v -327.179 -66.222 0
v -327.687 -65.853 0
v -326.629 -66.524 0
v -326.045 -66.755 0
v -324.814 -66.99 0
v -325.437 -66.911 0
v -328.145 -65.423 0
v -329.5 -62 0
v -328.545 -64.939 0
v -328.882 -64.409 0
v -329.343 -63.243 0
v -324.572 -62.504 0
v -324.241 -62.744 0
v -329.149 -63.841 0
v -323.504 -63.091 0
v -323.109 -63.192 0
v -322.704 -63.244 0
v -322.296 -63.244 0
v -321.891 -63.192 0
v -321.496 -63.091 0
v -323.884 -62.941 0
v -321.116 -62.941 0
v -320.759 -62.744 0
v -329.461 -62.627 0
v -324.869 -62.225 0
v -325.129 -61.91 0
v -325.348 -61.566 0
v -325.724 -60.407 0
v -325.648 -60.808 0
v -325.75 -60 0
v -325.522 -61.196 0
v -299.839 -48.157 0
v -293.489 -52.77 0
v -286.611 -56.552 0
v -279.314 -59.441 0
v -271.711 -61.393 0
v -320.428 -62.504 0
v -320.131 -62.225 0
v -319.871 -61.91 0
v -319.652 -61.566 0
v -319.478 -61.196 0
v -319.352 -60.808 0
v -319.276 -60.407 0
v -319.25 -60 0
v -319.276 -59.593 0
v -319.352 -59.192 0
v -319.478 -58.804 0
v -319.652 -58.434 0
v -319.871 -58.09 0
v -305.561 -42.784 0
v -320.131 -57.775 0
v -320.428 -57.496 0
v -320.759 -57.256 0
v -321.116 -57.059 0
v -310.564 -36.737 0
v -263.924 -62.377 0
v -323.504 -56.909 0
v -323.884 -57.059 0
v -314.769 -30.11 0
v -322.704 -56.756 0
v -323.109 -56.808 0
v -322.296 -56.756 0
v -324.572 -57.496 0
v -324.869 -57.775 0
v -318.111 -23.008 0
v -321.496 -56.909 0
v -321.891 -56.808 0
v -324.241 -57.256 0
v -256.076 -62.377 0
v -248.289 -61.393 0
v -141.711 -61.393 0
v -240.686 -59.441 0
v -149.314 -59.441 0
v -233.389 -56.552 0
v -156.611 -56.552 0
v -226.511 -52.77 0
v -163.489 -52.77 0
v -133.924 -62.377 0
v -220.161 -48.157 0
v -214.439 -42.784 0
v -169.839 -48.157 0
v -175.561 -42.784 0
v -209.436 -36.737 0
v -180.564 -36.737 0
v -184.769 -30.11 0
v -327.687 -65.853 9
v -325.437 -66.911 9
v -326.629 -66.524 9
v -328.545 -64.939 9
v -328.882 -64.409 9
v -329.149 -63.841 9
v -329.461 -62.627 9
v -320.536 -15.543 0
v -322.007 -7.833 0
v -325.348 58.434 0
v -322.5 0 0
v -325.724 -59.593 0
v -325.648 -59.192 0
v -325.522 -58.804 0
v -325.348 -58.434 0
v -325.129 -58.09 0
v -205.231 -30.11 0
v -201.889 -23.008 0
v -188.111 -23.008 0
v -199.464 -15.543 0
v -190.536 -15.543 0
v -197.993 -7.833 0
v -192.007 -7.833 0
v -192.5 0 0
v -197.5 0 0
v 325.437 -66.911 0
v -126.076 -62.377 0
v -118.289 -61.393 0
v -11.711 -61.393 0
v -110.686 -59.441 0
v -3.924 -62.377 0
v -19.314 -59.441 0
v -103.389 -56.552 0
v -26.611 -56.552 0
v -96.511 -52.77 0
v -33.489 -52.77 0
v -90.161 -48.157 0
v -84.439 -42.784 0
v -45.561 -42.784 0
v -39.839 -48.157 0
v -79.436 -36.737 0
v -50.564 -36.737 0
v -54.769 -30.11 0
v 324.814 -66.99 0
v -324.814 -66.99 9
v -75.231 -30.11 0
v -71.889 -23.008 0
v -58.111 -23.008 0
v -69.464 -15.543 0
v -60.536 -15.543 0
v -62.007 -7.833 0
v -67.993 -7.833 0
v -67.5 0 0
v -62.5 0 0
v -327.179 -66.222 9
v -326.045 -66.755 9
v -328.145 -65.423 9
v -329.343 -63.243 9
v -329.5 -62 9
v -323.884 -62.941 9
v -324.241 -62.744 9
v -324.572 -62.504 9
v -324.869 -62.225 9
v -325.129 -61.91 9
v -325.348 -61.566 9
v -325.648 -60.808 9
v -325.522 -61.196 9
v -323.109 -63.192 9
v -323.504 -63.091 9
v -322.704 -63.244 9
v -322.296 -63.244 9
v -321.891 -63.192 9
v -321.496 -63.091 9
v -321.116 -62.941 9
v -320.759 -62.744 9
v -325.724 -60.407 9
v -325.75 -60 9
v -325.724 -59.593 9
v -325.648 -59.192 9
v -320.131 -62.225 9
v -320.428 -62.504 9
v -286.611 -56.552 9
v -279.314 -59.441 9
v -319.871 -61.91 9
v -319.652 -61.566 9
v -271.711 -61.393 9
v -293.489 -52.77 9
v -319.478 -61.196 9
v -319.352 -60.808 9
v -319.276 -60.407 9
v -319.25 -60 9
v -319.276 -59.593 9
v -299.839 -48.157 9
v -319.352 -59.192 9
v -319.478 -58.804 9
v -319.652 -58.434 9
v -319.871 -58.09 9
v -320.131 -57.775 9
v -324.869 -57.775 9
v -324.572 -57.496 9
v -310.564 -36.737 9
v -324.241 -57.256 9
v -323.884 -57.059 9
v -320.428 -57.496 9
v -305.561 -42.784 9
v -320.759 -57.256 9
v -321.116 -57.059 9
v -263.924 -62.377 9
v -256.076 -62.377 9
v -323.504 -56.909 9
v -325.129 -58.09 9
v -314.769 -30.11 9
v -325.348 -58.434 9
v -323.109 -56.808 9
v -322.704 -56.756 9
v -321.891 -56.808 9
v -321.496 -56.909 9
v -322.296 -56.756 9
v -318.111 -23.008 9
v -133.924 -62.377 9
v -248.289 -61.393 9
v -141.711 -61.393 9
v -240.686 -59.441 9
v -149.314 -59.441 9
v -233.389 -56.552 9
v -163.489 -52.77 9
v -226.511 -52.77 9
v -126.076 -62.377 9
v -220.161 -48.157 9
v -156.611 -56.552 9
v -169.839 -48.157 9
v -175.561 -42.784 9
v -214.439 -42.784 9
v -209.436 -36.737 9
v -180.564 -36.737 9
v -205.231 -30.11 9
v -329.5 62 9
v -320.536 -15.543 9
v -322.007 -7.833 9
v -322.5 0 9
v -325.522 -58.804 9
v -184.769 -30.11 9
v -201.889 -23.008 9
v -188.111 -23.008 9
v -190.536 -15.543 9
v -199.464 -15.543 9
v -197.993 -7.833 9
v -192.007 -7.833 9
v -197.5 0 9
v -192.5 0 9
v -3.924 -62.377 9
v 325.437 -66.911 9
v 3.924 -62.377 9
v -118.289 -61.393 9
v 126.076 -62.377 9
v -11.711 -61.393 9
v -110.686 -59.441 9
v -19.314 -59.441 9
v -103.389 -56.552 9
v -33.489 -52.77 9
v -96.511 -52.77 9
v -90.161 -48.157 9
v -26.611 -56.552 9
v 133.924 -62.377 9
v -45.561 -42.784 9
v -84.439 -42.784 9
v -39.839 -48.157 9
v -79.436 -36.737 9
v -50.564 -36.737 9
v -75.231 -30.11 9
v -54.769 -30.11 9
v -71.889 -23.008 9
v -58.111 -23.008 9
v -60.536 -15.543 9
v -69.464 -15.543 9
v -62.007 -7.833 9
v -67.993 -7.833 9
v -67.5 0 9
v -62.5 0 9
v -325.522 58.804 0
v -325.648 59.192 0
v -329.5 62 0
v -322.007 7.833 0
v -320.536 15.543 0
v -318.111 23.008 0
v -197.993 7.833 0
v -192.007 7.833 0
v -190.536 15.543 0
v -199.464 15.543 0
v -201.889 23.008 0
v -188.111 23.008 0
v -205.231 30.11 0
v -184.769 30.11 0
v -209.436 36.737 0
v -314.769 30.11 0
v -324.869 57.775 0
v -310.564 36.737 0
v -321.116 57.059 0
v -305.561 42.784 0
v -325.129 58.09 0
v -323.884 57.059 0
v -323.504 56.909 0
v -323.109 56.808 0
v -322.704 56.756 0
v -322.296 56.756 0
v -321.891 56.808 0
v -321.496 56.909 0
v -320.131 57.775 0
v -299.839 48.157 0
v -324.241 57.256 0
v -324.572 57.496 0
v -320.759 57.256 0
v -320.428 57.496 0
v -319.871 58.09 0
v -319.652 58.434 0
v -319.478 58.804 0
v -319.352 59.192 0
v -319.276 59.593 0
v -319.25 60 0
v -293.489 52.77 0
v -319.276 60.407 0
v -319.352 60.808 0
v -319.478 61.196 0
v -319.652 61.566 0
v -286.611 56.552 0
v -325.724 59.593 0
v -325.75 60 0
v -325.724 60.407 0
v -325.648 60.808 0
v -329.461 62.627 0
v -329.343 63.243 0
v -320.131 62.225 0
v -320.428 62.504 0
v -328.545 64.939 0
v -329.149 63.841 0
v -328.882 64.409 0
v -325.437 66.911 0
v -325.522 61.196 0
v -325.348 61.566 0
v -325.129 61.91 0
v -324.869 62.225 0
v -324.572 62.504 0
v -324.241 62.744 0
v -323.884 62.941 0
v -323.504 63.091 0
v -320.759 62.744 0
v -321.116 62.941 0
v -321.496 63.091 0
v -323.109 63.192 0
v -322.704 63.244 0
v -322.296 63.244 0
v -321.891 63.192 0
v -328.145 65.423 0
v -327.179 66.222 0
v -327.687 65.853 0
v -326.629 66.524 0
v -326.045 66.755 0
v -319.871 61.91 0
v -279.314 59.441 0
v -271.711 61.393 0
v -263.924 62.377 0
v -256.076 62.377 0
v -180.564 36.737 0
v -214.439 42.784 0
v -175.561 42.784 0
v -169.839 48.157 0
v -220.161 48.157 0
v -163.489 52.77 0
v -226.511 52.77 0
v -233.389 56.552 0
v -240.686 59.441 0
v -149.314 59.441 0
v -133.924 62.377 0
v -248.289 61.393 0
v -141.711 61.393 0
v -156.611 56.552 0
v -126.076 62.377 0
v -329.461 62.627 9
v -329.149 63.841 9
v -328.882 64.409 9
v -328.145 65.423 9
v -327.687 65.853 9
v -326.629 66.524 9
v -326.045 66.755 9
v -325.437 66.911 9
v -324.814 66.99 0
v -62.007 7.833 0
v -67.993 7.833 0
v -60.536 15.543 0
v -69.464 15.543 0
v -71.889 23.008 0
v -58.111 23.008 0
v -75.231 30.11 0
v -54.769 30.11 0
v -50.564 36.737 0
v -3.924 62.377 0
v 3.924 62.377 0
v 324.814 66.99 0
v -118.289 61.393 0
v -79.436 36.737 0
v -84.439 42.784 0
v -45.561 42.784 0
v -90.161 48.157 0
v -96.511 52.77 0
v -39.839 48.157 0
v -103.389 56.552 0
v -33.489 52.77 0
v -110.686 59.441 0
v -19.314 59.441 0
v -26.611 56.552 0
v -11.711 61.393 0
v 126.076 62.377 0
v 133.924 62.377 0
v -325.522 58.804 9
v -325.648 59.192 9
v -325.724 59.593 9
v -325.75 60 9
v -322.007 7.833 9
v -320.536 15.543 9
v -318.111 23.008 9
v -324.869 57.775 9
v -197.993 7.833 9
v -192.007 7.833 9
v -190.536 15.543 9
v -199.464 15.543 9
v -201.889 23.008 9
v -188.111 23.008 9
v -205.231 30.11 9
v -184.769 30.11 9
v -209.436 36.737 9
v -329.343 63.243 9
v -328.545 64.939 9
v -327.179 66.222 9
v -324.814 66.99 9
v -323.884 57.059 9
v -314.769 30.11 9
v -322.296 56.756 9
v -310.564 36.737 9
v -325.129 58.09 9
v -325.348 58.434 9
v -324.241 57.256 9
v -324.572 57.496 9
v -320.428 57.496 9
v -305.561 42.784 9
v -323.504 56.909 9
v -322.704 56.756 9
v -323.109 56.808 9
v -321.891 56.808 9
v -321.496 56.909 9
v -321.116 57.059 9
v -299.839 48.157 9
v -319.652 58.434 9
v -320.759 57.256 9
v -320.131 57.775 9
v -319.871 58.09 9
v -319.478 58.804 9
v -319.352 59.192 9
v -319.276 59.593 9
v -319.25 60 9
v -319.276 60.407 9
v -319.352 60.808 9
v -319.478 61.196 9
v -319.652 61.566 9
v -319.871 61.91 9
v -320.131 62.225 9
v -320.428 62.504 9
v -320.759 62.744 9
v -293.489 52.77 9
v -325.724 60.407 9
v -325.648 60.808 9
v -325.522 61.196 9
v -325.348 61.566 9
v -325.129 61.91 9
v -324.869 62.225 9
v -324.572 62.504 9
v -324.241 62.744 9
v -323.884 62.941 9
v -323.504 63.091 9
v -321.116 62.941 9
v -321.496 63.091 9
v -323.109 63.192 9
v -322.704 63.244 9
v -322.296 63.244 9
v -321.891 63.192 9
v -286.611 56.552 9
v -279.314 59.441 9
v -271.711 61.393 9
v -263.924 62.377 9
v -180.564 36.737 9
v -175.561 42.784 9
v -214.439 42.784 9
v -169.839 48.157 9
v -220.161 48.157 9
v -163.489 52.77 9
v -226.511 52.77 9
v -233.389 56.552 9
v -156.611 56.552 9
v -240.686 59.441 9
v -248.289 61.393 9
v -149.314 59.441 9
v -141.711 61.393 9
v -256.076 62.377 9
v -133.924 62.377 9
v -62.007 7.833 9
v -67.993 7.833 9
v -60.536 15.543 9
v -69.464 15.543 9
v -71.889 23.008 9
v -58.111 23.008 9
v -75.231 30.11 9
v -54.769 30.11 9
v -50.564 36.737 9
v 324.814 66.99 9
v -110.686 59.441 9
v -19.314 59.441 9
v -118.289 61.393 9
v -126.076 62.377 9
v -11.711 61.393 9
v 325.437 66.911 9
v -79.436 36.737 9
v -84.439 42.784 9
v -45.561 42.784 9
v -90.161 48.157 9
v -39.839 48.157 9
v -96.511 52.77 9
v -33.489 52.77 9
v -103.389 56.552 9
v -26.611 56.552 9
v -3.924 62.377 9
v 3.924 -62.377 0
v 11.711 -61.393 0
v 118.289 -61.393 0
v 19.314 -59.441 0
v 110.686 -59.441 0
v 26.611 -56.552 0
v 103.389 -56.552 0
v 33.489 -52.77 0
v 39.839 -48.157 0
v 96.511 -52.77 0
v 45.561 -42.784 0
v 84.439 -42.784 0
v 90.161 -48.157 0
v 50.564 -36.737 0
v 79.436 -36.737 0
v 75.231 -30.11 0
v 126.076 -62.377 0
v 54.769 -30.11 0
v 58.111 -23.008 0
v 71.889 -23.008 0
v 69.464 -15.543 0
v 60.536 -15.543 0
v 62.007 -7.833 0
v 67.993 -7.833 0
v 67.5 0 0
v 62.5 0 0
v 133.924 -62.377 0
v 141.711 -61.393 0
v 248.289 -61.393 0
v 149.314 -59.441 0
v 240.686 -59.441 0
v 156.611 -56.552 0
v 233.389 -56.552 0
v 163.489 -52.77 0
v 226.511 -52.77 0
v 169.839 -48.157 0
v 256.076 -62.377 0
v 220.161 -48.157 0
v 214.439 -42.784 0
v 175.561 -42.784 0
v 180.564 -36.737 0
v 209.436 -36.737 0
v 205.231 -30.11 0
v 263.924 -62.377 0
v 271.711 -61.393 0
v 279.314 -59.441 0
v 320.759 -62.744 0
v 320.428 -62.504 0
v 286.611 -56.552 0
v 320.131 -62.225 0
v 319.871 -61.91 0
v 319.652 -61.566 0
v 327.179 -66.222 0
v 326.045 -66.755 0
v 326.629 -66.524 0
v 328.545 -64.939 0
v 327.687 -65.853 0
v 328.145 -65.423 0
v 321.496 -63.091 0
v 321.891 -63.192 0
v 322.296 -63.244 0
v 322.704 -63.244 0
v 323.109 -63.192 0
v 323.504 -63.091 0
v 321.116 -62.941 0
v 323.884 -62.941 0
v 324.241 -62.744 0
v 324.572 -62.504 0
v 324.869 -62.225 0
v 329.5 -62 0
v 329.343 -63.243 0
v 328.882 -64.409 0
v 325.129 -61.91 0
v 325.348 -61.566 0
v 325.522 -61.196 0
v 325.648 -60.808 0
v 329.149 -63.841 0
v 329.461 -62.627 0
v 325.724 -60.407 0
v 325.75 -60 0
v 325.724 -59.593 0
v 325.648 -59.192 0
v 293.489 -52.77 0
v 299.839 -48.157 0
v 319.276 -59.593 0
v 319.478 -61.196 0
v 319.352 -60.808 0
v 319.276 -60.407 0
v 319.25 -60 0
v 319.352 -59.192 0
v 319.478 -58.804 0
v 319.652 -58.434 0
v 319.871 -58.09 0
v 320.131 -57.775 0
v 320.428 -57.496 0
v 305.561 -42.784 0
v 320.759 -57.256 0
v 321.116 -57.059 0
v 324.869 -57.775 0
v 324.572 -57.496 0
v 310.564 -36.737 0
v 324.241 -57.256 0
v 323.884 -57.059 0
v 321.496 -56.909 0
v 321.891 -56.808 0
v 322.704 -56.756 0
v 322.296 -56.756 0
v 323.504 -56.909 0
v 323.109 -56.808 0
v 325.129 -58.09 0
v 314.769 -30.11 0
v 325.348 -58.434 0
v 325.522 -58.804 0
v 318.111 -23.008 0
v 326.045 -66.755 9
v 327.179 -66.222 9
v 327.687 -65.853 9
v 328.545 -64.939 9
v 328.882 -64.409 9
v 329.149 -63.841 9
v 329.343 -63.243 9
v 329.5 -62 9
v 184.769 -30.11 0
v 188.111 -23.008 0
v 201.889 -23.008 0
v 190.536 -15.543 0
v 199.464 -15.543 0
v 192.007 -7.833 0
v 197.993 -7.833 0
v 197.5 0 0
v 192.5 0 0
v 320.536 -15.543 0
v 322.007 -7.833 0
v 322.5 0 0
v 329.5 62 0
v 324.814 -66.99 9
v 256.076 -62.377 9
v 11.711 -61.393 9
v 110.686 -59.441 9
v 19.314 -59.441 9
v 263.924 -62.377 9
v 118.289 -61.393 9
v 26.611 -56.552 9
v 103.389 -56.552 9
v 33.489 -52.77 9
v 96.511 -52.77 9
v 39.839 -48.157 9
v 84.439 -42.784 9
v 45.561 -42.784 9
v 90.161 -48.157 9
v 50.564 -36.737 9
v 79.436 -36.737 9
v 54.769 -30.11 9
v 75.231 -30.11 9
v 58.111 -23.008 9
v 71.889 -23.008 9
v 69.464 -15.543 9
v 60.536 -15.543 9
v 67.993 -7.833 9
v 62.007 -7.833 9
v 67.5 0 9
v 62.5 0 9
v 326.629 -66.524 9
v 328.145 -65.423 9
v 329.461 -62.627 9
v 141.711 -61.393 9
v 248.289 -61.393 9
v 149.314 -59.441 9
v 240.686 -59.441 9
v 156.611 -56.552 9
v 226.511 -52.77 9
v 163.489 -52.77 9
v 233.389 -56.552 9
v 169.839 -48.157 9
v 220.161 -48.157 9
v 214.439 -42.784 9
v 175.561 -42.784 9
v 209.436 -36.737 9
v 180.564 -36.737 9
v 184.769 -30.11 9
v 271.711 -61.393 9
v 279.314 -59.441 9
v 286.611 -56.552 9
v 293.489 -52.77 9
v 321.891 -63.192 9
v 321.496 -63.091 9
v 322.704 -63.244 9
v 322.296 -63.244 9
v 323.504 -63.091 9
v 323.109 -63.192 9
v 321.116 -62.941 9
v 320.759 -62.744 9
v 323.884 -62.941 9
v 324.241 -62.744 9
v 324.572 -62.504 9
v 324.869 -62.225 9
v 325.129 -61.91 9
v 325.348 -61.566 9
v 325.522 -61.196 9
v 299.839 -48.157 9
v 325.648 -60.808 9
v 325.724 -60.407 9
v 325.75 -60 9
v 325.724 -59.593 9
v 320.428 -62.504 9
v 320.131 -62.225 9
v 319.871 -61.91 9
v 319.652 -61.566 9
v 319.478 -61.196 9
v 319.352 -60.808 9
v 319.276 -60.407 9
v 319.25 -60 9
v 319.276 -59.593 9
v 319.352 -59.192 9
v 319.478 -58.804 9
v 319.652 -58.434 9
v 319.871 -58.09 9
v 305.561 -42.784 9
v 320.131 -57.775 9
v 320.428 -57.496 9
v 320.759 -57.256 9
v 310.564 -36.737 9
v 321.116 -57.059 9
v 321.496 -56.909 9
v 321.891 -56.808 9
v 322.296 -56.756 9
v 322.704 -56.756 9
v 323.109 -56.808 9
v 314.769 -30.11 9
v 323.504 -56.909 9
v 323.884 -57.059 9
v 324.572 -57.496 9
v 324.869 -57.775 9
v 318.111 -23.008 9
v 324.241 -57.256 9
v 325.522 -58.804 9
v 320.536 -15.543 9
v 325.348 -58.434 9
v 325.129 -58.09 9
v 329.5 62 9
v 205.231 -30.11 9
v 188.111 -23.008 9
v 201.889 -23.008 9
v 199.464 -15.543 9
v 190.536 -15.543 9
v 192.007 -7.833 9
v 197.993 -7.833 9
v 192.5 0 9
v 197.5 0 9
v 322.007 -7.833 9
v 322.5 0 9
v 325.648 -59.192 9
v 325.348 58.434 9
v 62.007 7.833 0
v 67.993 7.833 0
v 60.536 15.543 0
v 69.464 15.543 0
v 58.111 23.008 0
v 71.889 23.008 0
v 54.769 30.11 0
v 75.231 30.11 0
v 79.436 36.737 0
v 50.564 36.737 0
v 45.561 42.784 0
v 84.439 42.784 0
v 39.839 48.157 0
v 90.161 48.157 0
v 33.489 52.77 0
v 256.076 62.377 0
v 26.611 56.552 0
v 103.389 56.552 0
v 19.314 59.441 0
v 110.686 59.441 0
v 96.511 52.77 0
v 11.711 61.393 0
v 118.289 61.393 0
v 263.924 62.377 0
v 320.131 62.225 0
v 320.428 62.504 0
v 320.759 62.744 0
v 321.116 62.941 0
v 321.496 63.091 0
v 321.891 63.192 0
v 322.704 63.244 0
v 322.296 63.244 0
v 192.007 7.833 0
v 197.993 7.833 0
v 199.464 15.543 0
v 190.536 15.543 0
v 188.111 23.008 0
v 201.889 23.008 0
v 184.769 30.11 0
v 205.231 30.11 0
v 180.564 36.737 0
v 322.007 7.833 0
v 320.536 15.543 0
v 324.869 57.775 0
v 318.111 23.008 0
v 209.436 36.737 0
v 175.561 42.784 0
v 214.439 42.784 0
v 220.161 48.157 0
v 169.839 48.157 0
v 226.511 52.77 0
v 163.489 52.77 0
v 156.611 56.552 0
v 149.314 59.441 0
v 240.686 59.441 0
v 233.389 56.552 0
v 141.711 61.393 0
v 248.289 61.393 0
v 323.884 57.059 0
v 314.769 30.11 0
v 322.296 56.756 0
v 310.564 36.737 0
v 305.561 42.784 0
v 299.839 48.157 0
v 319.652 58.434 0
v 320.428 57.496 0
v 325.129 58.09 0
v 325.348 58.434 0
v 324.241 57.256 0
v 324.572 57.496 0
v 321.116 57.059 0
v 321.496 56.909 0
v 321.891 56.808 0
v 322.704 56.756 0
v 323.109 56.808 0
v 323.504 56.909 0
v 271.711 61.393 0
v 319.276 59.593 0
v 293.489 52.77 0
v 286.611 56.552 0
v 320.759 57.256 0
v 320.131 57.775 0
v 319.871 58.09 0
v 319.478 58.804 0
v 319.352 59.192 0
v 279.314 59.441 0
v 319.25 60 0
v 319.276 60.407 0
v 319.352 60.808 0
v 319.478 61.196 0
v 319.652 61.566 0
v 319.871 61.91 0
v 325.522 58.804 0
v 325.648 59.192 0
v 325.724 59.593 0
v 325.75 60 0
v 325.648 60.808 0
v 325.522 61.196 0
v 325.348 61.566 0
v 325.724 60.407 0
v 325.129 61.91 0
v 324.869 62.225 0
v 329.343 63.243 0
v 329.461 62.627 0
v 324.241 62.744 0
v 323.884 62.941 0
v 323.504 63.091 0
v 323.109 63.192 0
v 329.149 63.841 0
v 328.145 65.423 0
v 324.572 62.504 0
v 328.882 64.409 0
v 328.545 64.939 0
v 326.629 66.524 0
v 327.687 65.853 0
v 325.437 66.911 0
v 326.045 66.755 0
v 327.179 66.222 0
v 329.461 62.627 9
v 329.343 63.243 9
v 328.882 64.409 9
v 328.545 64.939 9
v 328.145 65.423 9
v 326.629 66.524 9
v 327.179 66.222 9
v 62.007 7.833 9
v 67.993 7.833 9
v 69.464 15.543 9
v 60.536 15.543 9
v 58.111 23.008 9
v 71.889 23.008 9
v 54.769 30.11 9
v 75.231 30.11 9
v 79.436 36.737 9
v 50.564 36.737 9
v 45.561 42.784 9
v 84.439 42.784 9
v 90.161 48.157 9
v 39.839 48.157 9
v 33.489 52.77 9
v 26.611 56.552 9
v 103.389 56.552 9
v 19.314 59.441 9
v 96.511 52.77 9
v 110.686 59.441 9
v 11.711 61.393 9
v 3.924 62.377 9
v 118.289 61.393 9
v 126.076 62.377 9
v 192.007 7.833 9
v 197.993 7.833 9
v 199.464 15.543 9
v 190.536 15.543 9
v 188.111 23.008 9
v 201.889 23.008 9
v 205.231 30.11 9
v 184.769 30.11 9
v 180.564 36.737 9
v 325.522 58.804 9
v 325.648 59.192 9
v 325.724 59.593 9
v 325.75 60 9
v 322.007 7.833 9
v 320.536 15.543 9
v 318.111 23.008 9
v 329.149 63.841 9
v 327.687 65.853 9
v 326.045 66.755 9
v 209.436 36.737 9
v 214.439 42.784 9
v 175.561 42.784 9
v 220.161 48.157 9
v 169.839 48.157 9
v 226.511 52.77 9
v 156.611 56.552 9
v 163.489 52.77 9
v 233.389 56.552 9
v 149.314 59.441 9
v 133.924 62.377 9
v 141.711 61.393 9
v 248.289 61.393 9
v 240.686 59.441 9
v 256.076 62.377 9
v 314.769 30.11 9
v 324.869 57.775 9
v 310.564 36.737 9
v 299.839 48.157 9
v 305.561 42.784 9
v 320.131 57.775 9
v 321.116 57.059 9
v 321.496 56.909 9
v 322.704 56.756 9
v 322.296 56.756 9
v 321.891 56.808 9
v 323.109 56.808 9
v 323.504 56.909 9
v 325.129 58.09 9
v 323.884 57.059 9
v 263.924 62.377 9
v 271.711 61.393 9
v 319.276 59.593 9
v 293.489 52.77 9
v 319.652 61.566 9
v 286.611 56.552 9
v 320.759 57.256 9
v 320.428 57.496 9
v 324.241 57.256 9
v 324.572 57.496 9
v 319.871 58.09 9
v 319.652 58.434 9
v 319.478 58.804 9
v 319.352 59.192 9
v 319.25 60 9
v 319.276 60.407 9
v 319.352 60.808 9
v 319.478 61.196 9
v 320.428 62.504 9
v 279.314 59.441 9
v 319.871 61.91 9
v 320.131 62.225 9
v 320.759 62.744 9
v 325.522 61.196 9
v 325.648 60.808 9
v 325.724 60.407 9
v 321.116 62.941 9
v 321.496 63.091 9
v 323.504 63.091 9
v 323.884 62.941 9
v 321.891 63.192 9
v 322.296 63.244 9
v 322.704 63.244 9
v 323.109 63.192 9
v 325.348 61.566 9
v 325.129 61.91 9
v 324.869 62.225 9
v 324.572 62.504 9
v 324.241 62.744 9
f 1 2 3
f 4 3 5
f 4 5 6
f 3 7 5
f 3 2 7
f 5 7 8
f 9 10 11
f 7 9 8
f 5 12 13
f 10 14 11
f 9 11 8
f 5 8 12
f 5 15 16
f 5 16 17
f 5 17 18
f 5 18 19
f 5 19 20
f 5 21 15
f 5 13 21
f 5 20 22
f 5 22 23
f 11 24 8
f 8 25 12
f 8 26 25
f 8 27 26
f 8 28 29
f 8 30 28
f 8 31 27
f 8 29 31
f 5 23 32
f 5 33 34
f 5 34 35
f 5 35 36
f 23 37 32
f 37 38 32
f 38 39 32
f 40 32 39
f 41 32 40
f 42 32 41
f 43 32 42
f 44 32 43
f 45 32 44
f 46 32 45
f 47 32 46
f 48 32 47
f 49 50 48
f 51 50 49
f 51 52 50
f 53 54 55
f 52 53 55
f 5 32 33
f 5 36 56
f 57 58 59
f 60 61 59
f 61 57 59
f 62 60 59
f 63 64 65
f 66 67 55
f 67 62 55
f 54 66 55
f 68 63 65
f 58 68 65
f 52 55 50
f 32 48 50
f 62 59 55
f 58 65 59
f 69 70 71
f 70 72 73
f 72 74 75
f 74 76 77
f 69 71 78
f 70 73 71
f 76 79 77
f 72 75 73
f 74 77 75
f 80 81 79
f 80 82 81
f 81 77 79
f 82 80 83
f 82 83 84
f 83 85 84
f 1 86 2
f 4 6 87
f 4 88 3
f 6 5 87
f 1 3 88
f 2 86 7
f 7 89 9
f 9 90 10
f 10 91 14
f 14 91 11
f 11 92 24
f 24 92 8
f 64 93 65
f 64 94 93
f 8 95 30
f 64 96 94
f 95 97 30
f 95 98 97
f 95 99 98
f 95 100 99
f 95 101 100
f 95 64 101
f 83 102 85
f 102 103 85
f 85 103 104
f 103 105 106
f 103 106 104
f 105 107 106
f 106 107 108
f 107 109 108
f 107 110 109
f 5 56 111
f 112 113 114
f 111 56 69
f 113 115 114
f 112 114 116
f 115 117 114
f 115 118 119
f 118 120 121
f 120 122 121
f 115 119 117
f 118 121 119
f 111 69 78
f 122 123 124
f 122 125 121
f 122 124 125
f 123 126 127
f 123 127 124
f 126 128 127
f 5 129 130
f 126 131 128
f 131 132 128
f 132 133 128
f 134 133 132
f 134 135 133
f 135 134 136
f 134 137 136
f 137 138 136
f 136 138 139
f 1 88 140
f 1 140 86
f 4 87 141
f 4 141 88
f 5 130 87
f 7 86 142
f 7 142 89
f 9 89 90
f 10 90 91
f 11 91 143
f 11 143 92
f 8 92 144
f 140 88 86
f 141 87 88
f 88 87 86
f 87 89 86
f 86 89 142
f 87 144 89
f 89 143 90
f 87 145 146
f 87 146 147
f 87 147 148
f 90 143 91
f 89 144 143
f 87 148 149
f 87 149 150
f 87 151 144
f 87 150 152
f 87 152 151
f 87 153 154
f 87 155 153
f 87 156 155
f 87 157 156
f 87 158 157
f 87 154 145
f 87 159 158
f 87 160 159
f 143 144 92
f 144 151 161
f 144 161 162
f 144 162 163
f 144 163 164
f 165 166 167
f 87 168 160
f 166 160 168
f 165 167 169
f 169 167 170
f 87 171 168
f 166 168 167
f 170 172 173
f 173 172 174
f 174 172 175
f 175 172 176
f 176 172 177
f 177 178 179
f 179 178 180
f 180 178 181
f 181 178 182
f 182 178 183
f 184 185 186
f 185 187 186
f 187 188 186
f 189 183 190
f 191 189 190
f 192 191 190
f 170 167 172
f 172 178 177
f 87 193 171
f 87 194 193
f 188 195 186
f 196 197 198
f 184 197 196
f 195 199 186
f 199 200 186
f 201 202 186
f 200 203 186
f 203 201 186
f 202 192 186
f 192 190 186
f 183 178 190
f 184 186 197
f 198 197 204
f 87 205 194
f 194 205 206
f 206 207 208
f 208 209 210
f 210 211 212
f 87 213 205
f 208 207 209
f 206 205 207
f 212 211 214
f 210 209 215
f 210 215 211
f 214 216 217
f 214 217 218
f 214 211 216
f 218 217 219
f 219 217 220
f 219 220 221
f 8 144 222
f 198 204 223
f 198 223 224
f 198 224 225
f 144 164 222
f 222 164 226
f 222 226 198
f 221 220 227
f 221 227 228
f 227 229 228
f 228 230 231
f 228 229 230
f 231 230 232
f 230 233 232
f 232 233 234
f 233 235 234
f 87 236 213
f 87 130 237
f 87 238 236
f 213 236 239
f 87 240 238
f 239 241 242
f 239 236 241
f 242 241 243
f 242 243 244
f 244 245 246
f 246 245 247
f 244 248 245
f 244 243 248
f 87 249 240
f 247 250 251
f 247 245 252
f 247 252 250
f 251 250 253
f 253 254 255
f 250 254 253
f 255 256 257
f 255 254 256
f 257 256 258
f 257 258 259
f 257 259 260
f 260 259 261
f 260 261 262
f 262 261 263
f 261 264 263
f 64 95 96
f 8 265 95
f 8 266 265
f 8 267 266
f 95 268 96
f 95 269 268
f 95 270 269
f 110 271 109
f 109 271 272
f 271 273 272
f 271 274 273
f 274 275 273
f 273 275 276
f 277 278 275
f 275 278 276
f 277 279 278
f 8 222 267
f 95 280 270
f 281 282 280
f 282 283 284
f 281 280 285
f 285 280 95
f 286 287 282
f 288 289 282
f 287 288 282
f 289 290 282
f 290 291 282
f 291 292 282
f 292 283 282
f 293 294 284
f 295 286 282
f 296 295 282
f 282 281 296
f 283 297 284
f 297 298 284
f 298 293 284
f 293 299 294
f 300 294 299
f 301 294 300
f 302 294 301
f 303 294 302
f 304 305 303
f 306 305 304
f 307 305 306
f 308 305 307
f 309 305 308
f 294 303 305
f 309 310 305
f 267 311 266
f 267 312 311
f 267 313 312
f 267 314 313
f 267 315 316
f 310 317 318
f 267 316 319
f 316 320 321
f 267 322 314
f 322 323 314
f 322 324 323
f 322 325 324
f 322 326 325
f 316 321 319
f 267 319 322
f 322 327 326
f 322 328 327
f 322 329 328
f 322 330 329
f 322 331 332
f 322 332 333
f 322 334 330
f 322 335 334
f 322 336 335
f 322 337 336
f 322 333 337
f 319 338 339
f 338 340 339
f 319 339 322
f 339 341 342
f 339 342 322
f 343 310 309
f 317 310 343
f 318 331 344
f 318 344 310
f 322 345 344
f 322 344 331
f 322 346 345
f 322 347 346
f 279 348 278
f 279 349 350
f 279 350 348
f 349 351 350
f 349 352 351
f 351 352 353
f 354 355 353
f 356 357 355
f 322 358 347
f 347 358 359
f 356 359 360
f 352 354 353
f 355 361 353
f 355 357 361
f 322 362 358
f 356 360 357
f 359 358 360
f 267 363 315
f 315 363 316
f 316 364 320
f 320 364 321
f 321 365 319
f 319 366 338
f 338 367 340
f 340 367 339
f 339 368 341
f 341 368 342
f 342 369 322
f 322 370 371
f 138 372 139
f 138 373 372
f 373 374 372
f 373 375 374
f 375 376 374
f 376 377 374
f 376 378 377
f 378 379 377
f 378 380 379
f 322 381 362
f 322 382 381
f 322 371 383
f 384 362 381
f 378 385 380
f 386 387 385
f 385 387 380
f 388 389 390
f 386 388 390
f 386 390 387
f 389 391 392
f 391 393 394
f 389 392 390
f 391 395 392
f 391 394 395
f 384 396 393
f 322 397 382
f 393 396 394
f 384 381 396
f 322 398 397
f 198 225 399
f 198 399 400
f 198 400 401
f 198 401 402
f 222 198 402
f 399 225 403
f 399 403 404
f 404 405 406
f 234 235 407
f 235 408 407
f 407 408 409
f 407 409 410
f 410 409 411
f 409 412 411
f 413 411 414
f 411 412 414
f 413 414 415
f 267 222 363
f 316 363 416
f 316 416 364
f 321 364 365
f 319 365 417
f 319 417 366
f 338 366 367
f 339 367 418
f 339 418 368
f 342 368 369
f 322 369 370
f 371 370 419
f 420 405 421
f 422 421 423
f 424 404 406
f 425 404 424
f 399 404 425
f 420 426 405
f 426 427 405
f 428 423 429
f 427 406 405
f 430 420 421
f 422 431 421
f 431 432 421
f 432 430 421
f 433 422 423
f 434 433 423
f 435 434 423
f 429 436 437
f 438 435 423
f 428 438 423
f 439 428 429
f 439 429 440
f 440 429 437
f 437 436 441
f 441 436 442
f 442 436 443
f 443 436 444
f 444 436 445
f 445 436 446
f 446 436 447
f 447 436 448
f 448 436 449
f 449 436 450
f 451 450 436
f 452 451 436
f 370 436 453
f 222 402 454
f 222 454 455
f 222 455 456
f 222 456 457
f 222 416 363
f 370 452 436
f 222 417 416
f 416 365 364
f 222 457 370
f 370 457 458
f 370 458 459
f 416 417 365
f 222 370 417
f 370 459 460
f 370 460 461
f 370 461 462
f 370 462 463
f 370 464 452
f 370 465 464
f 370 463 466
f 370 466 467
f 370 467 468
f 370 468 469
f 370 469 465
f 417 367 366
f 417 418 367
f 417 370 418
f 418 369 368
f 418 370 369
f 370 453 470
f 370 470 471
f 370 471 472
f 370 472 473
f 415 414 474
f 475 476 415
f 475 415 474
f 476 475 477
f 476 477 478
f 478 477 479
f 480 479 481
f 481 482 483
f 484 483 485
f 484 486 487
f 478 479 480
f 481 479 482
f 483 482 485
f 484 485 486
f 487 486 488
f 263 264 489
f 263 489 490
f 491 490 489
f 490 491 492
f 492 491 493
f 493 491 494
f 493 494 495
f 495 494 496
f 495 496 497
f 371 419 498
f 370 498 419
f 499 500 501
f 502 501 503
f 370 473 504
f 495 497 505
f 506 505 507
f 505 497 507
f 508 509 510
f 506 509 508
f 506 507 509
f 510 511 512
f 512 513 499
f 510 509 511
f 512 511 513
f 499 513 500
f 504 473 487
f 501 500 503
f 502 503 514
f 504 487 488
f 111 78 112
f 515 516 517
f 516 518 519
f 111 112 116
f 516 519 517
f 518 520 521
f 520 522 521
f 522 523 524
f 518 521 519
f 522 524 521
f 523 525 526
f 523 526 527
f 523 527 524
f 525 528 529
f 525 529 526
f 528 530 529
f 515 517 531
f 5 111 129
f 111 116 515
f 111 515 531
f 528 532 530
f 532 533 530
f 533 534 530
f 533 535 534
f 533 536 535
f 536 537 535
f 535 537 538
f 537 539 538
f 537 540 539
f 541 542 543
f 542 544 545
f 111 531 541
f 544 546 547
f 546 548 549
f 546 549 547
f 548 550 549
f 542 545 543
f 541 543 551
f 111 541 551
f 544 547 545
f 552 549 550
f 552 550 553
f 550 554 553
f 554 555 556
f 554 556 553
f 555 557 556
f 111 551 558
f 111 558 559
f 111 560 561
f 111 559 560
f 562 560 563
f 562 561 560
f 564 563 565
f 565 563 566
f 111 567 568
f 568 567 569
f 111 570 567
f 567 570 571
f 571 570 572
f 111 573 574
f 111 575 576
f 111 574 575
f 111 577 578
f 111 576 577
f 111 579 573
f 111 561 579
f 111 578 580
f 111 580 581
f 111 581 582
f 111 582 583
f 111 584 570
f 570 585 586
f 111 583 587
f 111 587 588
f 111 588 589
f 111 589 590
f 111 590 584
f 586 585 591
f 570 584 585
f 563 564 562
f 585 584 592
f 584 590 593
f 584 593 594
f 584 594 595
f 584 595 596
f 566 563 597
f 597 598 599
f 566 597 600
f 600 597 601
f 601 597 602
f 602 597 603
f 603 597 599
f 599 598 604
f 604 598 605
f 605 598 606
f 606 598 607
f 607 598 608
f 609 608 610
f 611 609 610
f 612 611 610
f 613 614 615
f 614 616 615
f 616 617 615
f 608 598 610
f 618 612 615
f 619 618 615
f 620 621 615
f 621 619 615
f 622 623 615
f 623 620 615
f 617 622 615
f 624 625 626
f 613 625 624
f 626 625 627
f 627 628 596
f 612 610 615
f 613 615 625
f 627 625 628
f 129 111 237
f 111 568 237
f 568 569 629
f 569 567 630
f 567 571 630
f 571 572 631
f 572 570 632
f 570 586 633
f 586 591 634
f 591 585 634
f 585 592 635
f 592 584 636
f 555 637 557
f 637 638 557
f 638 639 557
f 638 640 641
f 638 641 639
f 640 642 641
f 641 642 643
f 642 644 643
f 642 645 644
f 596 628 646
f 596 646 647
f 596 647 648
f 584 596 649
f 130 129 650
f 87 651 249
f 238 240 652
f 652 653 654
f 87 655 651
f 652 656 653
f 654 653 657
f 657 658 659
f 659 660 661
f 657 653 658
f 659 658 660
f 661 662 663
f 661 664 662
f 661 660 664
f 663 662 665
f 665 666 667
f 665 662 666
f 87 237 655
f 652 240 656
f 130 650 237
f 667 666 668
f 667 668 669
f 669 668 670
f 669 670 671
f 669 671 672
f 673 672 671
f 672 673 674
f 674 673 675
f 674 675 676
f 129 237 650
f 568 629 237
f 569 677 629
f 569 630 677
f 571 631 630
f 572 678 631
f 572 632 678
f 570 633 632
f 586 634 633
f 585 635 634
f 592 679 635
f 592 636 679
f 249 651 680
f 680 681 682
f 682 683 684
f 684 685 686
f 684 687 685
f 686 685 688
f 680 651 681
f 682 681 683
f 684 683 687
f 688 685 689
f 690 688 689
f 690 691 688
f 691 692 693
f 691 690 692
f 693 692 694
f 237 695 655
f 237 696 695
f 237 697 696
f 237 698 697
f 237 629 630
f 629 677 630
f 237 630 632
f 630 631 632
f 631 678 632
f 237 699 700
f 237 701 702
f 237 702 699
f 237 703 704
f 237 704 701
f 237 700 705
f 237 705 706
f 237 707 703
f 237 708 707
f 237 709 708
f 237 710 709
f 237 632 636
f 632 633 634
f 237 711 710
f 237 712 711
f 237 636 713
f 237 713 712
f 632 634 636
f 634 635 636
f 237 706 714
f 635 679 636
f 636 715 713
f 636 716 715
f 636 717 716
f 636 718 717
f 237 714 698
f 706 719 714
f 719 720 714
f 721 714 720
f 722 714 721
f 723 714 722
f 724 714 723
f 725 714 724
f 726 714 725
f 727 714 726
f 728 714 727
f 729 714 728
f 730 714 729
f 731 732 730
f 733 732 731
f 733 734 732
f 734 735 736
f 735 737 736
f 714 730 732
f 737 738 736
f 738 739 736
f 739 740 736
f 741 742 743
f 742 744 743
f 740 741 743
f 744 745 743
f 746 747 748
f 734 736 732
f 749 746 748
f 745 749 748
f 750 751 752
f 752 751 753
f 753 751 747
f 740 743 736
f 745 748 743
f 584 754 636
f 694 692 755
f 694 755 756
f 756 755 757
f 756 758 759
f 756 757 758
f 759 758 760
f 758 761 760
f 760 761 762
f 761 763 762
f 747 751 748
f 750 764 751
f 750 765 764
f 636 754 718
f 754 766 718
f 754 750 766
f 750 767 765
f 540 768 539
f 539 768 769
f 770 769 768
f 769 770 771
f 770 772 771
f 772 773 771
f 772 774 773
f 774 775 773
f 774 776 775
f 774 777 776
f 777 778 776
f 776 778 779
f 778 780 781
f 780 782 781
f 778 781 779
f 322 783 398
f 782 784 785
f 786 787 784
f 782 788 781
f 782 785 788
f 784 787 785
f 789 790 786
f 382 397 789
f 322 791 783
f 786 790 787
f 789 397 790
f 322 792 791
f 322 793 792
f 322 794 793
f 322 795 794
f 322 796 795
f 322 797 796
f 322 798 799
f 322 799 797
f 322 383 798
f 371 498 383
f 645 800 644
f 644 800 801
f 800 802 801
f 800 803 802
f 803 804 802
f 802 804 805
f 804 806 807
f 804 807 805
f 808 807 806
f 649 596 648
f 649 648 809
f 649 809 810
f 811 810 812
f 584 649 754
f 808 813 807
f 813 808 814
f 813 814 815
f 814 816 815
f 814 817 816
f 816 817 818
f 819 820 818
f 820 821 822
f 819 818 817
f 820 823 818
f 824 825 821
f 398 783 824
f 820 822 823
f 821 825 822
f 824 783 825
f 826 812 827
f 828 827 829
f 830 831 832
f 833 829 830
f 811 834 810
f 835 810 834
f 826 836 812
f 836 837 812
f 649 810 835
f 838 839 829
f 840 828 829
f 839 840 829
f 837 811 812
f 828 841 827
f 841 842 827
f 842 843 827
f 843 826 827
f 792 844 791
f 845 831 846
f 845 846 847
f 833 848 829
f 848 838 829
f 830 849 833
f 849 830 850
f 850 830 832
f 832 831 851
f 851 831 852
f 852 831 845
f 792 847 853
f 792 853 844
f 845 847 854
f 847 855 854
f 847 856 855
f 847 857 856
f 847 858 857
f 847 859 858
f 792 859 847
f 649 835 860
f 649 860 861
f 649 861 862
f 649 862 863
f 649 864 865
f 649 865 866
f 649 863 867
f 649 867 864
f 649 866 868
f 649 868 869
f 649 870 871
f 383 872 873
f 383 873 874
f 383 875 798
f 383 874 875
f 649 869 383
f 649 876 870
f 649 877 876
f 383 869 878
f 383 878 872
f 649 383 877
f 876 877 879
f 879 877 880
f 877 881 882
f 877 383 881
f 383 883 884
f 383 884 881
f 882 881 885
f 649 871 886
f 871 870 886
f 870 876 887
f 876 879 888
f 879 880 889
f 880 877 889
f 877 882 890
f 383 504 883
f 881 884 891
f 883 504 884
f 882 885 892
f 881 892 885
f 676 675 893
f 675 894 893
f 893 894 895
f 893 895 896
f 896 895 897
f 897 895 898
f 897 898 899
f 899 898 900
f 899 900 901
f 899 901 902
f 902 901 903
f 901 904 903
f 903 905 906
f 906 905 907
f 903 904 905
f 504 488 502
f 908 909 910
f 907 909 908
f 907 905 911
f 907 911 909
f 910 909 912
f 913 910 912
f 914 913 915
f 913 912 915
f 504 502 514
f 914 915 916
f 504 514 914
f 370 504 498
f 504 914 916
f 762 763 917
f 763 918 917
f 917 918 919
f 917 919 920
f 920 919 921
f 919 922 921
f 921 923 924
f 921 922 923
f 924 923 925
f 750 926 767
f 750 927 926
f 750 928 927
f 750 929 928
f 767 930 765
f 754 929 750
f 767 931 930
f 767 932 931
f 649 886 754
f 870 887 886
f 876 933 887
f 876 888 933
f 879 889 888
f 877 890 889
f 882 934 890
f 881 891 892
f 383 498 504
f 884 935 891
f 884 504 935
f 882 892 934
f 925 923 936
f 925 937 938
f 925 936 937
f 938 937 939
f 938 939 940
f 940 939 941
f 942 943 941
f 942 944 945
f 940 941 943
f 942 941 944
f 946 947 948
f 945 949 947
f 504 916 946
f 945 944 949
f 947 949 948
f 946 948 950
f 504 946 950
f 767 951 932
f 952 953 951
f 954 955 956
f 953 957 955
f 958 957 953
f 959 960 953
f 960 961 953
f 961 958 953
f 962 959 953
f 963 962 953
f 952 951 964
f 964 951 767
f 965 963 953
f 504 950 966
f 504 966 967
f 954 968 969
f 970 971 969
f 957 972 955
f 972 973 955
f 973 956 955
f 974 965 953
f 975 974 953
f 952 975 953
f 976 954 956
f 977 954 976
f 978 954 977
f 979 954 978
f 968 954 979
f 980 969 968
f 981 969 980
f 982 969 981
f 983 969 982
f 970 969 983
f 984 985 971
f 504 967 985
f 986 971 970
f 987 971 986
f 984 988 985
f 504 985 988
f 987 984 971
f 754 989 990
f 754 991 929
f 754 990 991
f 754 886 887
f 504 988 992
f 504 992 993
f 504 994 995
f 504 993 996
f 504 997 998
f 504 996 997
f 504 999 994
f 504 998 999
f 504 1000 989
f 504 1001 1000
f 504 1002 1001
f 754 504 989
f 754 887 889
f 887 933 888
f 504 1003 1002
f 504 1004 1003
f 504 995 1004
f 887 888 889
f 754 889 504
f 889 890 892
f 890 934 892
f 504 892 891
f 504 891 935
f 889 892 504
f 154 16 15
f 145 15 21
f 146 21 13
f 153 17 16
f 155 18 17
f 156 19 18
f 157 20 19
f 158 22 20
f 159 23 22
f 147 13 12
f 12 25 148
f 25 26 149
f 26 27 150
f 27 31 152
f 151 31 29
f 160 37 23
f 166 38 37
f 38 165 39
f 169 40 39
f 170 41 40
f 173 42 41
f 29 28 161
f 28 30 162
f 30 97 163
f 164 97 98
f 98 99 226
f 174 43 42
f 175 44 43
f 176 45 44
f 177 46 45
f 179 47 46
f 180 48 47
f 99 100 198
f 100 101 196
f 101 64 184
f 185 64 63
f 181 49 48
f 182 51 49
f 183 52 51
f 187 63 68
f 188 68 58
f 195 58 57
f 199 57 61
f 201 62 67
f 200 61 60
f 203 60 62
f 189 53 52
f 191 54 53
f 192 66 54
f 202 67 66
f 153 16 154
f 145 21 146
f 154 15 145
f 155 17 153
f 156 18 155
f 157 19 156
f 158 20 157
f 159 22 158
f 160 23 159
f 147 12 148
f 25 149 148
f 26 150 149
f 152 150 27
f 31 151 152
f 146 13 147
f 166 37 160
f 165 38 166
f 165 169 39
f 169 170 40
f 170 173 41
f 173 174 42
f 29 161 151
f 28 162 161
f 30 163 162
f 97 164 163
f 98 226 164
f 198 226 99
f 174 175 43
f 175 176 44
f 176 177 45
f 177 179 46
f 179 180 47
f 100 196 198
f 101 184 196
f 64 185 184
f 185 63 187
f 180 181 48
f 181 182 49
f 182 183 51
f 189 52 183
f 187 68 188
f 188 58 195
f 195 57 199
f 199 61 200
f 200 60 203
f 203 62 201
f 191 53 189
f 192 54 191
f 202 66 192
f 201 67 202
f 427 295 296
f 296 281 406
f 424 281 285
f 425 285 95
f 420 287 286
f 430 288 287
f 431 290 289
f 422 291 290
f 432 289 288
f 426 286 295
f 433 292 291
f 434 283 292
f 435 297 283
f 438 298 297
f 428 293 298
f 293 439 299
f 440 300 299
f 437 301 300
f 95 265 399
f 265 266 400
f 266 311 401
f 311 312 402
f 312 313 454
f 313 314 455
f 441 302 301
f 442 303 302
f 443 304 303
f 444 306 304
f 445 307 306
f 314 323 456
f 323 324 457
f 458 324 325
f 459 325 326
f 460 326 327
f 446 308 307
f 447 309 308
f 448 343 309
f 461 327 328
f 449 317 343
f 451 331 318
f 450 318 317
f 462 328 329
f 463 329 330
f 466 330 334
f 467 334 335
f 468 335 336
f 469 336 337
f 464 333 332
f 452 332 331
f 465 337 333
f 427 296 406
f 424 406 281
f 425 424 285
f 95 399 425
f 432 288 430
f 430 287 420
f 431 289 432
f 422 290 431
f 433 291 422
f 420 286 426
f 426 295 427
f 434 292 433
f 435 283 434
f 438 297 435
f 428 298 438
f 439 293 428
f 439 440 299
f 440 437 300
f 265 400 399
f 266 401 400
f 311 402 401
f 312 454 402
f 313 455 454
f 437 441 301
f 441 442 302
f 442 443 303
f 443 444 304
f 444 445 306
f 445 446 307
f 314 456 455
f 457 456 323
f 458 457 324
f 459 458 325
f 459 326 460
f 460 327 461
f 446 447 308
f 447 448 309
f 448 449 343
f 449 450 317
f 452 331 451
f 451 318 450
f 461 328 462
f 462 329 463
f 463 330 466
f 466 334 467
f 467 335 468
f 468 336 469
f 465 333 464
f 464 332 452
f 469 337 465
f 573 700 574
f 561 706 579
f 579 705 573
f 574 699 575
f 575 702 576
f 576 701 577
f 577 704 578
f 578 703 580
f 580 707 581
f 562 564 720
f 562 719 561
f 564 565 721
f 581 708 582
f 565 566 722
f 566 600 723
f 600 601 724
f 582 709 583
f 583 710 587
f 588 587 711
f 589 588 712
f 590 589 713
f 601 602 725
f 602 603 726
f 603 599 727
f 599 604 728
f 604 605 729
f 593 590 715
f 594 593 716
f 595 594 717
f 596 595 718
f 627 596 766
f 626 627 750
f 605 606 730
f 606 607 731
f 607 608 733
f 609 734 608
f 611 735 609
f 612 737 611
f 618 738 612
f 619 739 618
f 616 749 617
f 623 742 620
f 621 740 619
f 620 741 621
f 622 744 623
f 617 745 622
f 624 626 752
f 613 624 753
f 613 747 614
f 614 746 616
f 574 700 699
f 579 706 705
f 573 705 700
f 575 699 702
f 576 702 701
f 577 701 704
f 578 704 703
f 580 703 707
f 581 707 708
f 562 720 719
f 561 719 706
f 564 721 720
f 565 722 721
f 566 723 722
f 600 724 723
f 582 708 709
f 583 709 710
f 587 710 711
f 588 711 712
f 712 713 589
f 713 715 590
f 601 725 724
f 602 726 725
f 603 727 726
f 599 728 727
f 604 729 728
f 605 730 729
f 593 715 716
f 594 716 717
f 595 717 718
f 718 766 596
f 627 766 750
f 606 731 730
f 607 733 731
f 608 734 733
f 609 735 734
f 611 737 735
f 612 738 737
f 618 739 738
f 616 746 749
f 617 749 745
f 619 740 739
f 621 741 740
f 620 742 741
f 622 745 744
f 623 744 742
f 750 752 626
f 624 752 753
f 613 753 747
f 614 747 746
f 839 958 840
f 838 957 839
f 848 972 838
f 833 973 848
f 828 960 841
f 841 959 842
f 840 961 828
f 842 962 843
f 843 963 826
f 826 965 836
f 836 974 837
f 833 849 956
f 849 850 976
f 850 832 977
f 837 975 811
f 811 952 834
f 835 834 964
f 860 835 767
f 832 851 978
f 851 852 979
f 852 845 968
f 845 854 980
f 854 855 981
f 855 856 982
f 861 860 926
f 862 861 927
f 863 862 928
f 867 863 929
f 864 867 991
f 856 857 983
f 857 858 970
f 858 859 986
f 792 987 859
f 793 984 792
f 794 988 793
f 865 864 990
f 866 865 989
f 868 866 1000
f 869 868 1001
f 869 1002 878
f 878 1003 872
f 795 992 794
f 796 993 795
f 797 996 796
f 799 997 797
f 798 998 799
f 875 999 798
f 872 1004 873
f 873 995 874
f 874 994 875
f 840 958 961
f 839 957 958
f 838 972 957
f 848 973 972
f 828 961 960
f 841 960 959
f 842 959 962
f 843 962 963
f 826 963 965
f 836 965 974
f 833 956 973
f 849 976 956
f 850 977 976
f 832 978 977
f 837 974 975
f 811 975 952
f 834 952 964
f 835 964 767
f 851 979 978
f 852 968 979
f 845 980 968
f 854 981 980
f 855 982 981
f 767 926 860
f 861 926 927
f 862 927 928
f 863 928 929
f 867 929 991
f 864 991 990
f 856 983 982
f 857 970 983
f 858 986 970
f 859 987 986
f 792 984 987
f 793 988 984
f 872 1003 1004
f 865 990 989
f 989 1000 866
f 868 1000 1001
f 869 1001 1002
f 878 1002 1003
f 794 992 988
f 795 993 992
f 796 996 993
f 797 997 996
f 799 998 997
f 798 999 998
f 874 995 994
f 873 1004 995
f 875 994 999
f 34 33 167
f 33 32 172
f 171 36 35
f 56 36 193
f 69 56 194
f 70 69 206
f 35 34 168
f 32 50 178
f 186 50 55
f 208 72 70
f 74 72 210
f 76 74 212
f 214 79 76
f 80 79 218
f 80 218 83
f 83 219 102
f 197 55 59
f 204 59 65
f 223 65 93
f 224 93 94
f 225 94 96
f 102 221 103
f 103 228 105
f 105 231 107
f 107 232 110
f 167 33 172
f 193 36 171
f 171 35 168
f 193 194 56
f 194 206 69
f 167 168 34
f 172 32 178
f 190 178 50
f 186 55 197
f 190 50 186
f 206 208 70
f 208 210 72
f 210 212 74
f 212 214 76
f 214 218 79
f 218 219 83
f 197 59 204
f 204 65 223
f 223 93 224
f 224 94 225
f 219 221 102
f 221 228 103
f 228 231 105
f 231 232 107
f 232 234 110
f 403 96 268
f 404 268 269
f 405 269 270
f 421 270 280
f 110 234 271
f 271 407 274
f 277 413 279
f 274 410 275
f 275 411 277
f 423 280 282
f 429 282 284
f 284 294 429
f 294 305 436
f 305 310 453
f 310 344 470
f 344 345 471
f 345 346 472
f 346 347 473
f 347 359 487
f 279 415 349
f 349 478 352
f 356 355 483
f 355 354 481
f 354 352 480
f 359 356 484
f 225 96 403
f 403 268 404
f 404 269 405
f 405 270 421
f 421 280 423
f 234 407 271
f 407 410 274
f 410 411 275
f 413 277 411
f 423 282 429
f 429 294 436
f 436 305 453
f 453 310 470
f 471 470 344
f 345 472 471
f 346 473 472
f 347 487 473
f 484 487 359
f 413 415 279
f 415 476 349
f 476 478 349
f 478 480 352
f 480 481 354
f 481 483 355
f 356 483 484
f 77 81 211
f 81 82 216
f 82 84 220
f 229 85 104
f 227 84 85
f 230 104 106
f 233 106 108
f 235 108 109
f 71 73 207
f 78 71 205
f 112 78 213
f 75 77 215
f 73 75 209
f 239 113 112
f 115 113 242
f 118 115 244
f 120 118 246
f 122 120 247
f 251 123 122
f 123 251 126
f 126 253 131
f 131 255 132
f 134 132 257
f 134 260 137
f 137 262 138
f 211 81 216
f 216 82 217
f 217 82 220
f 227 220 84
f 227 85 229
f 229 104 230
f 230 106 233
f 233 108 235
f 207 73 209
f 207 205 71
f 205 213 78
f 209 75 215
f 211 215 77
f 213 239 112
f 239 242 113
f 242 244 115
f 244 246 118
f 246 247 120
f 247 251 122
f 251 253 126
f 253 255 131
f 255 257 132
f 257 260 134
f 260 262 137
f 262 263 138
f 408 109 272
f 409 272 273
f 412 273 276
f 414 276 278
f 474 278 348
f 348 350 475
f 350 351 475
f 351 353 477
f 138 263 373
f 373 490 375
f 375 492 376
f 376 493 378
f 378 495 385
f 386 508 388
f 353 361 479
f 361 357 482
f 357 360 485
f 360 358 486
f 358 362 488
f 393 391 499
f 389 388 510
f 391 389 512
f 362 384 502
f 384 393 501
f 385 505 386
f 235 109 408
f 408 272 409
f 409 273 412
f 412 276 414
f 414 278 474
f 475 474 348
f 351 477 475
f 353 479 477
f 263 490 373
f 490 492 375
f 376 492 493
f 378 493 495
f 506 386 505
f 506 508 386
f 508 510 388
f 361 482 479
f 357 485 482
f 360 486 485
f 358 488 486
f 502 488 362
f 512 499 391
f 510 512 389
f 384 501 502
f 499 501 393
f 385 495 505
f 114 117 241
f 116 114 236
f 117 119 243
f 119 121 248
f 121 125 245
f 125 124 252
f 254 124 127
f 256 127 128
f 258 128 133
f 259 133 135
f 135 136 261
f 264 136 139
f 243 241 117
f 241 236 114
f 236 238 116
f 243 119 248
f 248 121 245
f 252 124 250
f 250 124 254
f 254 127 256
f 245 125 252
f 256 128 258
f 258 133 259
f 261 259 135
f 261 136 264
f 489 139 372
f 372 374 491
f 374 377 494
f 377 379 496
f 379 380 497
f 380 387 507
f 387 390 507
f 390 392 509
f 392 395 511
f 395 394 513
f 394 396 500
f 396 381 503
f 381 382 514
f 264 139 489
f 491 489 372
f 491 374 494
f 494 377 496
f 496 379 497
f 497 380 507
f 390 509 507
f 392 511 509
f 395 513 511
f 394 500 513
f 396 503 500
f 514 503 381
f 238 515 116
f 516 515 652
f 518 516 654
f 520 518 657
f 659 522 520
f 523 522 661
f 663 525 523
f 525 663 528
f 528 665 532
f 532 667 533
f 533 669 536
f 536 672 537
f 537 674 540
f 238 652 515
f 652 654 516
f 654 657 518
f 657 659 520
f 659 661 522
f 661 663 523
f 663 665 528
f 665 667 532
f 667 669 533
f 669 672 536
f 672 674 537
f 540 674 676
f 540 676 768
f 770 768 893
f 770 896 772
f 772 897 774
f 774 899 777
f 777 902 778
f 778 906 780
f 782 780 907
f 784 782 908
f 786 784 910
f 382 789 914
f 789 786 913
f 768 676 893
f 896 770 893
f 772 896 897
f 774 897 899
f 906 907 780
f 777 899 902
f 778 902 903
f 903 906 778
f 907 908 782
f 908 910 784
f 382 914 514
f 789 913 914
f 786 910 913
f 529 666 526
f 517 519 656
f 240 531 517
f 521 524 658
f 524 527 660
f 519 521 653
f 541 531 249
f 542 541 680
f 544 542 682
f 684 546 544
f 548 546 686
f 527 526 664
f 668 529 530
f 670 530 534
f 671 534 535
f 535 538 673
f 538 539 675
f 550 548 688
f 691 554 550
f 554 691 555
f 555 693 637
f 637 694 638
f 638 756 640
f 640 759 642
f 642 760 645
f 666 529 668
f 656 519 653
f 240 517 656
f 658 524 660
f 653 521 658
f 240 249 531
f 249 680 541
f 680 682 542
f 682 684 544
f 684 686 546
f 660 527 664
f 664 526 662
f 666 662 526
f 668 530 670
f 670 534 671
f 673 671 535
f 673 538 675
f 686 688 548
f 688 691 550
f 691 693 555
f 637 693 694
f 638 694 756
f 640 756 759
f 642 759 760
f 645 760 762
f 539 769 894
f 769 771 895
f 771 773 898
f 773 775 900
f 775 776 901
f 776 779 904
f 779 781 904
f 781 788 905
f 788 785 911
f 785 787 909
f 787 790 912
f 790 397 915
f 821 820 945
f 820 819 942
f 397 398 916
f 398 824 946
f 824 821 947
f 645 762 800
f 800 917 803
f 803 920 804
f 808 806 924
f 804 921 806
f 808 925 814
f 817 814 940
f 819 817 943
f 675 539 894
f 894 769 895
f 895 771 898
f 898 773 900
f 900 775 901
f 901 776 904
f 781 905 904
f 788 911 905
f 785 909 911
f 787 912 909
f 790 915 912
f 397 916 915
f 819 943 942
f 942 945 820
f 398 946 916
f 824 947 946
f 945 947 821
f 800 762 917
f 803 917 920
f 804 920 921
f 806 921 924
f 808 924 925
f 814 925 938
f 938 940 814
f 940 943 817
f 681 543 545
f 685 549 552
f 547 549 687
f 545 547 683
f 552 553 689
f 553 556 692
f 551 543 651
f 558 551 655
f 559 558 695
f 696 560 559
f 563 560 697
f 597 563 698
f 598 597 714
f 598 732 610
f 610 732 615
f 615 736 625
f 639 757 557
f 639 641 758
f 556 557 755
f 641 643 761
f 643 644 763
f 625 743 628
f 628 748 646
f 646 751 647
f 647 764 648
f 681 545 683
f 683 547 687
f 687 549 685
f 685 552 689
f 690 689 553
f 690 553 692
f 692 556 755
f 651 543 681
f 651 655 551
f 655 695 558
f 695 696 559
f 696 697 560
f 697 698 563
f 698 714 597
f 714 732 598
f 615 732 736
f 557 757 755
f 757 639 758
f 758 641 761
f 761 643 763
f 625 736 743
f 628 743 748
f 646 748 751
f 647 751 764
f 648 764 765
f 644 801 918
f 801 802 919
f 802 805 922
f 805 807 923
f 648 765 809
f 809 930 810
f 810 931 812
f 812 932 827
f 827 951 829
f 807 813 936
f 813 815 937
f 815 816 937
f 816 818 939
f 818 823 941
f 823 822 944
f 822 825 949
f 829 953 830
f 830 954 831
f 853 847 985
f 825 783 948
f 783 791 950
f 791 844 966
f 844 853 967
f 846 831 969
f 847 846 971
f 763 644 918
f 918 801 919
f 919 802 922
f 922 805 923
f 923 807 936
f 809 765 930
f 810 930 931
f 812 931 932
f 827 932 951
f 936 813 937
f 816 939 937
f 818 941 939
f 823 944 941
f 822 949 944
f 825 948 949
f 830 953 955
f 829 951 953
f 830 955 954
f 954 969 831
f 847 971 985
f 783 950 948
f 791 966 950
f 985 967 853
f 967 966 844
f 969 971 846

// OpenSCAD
$fn = 50;

difference() {
	union() {
		hull() {
			translate(v = [-324.5, 62.0, 0]) {
				cylinder(h = 9, r = 5);
			}
			translate(v = [324.5, 62.0, 0]) {
				cylinder(h = 9, r = 5);
			}
			translate(v = [-324.5, -62.0, 0]) {
				cylinder(h = 9, r = 5);
			}
			translate(v = [324.5, -62.0, 0]) {
				cylinder(h = 9, r = 5);
			}
		}
	}
	union() {
		translate(v = [-322.5, -60.0, -100.0]) {
			cylinder(h = 200, r = 3.25);
		}
		translate(v = [-322.5, 60.0, -100.0]) {
			cylinder(h = 200, r = 3.25);
		}
		translate(v = [322.5, -60.0, -100.0]) {
			cylinder(h = 200, r = 3.25);
		}
		translate(v = [322.5, 60.0, -100.0]) {
			cylinder(h = 200, r = 3.25);
		}
		translate(v = [-322.5, -60.0, -100.0]) {
			cylinder(h = 200, r = 1.8);
		}
		translate(v = [-322.5, 60.0, -100.0]) {
			cylinder(h = 200, r = 1.8);
		}
		translate(v = [322.5, -60.0, -100.0]) {
			cylinder(h = 200, r = 1.8);
		}
		translate(v = [322.5, 60.0, -100.0]) {
			cylinder(h = 200, r = 1.8);
		}
		translate(v = [-260.0, 0, 0.0]) {
			cylinder(h = 9, r = 62.5);
		}
		translate(v = [-130.0, 0, 0.0]) {
			cylinder(h = 9, r = 62.5);
		}
		cylinder(h = 9, r = 62.5);
		translate(v = [130.0, 0, 0.0]) {
			cylinder(h = 9, r = 62.5);
		}
		translate(v = [260.0, 0, 0.0]) {
			cylinder(h = 9, r = 62.5);
		}
	}
}
